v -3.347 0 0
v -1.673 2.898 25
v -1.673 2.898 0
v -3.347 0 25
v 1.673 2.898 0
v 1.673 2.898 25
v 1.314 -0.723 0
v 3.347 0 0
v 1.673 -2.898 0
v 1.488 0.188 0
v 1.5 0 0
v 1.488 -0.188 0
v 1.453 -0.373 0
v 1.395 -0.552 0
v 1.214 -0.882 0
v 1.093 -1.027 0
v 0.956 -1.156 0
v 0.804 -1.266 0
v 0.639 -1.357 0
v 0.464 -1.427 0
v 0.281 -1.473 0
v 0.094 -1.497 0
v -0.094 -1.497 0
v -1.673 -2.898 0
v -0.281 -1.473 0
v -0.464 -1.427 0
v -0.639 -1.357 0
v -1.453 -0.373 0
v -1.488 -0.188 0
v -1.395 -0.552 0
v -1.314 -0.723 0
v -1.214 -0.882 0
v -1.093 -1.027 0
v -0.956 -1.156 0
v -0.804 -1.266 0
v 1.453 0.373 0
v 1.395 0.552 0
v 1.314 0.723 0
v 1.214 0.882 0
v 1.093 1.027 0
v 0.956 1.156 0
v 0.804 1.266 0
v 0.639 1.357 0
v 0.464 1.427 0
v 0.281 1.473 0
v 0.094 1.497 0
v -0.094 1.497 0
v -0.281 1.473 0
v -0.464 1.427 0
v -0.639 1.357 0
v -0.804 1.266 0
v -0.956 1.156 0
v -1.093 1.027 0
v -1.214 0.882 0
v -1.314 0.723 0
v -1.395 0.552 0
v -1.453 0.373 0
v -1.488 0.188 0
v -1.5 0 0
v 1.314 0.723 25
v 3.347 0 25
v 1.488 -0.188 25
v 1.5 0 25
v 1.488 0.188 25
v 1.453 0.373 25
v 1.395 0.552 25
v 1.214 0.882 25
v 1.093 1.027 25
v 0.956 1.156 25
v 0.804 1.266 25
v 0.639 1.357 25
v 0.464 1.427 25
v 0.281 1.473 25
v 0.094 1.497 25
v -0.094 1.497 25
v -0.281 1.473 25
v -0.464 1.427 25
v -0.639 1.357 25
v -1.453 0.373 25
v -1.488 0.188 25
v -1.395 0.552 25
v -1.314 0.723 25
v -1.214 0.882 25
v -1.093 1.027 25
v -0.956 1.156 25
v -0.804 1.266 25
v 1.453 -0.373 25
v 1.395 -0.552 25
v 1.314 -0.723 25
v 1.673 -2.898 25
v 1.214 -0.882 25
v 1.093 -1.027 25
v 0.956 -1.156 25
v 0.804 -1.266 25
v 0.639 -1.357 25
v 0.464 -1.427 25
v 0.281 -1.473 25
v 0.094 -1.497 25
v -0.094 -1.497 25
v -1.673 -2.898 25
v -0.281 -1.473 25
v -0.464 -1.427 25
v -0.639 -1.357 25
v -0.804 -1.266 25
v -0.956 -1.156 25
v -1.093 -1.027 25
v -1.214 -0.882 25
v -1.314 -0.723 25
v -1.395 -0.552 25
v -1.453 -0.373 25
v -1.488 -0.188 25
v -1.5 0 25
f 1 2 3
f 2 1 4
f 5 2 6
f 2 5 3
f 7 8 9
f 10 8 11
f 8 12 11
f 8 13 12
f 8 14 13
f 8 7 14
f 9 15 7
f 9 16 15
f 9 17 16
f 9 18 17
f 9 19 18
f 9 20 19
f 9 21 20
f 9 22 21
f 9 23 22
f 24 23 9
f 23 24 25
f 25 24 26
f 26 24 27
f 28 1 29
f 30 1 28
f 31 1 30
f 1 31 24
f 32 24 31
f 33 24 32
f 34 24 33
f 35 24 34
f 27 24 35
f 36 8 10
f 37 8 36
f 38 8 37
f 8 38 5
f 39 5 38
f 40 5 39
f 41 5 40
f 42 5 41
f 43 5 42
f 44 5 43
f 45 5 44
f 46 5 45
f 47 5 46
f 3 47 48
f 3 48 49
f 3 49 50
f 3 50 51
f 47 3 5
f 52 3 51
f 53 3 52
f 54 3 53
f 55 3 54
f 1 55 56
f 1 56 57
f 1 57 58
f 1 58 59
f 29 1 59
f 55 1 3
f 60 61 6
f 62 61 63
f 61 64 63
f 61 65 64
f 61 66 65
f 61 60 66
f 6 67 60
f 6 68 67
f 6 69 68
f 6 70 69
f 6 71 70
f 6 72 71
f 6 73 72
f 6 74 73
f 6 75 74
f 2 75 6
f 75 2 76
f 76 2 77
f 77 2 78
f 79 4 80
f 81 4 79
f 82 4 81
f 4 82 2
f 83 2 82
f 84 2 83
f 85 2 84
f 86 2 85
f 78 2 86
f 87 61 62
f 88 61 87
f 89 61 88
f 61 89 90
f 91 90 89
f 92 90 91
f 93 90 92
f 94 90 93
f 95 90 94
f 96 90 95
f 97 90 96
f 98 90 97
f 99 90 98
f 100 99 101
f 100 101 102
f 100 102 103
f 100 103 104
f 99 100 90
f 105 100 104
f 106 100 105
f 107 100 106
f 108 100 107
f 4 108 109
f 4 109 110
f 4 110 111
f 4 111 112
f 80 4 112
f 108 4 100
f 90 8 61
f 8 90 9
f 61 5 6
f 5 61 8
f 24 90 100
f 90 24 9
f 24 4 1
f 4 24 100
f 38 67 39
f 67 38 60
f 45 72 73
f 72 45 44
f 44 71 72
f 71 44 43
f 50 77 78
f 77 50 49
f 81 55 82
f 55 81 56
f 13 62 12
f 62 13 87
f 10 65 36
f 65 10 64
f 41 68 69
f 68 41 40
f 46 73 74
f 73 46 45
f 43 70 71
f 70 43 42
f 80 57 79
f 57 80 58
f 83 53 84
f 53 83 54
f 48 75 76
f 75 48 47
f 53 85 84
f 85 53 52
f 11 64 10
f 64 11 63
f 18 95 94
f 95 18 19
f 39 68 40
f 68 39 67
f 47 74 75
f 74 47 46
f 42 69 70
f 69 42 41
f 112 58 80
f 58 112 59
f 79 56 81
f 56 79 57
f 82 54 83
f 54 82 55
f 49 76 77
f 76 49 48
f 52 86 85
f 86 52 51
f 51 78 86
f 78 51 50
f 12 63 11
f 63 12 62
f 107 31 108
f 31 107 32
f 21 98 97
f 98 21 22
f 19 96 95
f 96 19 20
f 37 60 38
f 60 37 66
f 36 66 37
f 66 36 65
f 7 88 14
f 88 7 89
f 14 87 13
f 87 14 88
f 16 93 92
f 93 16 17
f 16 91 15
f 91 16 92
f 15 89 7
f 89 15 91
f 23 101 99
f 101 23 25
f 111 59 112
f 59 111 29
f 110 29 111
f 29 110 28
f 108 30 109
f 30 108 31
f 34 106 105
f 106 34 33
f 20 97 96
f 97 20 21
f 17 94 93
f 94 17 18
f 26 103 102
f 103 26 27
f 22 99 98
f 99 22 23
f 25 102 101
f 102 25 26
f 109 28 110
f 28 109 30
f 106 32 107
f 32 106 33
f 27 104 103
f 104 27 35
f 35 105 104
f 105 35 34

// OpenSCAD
$fn = 50;


difference() {
	union() {
		translate(v = [0, 0, 0]) {
			rotate(a = [0, 0, 0]) {
				translate(v = [0, 0, 0]) {
					rotate(a = [0, 0, 0]) {
						linear_extrude(height = 25) {
							polygon(points = [[3.3466000000, 0.0000000000], [1.6733000000, 2.8982406163], [-1.6733000000, 2.8982406163], [-3.3466000000, 0.0000000000], [-1.6733000000, -2.8982406163], [1.6733000000, -2.8982406163]]);
						}
					}
				}
			}
		}
	}
	union() {
		translate(v = [0, 0, 0]) {
			rotate(a = [0, 0, 0]) {
				cylinder(h = 25, r = 1.5000000000);
			}
		}
	}
}
